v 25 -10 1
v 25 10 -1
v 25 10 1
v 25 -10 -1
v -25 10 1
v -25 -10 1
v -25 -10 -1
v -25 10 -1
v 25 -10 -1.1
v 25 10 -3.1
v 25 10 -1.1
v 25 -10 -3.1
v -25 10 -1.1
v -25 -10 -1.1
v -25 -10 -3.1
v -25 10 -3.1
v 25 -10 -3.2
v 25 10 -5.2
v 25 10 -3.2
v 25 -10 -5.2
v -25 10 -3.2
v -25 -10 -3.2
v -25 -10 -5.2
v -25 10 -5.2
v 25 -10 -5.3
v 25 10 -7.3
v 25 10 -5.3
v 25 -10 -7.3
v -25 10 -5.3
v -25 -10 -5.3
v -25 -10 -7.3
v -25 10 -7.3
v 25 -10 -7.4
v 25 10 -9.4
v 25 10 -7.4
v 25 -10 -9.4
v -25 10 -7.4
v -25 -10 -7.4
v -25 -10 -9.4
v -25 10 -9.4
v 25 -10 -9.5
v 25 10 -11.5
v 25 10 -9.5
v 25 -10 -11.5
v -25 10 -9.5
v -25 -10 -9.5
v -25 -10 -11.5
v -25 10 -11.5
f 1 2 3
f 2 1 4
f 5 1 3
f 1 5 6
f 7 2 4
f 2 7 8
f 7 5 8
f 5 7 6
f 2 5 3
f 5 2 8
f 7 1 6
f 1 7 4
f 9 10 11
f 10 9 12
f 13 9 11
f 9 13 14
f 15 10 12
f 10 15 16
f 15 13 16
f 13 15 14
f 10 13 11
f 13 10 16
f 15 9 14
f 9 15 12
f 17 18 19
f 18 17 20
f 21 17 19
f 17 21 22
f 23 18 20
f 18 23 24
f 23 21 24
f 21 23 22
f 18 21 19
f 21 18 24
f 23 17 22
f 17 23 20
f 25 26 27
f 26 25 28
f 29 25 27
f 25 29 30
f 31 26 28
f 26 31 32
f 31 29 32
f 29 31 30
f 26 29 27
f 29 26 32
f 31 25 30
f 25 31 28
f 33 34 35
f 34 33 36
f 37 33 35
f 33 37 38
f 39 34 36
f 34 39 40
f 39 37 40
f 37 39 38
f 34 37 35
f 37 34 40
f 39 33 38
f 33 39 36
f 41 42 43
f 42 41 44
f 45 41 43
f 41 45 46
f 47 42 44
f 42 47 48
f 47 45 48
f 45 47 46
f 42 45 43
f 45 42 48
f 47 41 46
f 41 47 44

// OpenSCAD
// Define the dimensions of the rectangular plate
plate_length = 50;  // Length of the plate
plate_width = 20;   // Width of the plate
plate_thickness = 2; // Thickness of the plate

// Define the spacing between the layers
layer_spacing = 0.1; // Reduced distance between each plate to eliminate gaps

// Function to create a rectangular plate
module rectangular_plate() {
    cube([plate_length, plate_width, plate_thickness], center = true);
}

// Assemble the layers of rectangular plates
module flexible_coupling() {
    for (i = [0:5]) {
        translate([0, 0, -i * (plate_thickness + layer_spacing)]) {
            rotate([0, 0, 0]) // Ensure plates are perfectly aligned and parallel
                rectangular_plate();
        }
    }
}

// Render the flexible coupling
flexible_coupling();
